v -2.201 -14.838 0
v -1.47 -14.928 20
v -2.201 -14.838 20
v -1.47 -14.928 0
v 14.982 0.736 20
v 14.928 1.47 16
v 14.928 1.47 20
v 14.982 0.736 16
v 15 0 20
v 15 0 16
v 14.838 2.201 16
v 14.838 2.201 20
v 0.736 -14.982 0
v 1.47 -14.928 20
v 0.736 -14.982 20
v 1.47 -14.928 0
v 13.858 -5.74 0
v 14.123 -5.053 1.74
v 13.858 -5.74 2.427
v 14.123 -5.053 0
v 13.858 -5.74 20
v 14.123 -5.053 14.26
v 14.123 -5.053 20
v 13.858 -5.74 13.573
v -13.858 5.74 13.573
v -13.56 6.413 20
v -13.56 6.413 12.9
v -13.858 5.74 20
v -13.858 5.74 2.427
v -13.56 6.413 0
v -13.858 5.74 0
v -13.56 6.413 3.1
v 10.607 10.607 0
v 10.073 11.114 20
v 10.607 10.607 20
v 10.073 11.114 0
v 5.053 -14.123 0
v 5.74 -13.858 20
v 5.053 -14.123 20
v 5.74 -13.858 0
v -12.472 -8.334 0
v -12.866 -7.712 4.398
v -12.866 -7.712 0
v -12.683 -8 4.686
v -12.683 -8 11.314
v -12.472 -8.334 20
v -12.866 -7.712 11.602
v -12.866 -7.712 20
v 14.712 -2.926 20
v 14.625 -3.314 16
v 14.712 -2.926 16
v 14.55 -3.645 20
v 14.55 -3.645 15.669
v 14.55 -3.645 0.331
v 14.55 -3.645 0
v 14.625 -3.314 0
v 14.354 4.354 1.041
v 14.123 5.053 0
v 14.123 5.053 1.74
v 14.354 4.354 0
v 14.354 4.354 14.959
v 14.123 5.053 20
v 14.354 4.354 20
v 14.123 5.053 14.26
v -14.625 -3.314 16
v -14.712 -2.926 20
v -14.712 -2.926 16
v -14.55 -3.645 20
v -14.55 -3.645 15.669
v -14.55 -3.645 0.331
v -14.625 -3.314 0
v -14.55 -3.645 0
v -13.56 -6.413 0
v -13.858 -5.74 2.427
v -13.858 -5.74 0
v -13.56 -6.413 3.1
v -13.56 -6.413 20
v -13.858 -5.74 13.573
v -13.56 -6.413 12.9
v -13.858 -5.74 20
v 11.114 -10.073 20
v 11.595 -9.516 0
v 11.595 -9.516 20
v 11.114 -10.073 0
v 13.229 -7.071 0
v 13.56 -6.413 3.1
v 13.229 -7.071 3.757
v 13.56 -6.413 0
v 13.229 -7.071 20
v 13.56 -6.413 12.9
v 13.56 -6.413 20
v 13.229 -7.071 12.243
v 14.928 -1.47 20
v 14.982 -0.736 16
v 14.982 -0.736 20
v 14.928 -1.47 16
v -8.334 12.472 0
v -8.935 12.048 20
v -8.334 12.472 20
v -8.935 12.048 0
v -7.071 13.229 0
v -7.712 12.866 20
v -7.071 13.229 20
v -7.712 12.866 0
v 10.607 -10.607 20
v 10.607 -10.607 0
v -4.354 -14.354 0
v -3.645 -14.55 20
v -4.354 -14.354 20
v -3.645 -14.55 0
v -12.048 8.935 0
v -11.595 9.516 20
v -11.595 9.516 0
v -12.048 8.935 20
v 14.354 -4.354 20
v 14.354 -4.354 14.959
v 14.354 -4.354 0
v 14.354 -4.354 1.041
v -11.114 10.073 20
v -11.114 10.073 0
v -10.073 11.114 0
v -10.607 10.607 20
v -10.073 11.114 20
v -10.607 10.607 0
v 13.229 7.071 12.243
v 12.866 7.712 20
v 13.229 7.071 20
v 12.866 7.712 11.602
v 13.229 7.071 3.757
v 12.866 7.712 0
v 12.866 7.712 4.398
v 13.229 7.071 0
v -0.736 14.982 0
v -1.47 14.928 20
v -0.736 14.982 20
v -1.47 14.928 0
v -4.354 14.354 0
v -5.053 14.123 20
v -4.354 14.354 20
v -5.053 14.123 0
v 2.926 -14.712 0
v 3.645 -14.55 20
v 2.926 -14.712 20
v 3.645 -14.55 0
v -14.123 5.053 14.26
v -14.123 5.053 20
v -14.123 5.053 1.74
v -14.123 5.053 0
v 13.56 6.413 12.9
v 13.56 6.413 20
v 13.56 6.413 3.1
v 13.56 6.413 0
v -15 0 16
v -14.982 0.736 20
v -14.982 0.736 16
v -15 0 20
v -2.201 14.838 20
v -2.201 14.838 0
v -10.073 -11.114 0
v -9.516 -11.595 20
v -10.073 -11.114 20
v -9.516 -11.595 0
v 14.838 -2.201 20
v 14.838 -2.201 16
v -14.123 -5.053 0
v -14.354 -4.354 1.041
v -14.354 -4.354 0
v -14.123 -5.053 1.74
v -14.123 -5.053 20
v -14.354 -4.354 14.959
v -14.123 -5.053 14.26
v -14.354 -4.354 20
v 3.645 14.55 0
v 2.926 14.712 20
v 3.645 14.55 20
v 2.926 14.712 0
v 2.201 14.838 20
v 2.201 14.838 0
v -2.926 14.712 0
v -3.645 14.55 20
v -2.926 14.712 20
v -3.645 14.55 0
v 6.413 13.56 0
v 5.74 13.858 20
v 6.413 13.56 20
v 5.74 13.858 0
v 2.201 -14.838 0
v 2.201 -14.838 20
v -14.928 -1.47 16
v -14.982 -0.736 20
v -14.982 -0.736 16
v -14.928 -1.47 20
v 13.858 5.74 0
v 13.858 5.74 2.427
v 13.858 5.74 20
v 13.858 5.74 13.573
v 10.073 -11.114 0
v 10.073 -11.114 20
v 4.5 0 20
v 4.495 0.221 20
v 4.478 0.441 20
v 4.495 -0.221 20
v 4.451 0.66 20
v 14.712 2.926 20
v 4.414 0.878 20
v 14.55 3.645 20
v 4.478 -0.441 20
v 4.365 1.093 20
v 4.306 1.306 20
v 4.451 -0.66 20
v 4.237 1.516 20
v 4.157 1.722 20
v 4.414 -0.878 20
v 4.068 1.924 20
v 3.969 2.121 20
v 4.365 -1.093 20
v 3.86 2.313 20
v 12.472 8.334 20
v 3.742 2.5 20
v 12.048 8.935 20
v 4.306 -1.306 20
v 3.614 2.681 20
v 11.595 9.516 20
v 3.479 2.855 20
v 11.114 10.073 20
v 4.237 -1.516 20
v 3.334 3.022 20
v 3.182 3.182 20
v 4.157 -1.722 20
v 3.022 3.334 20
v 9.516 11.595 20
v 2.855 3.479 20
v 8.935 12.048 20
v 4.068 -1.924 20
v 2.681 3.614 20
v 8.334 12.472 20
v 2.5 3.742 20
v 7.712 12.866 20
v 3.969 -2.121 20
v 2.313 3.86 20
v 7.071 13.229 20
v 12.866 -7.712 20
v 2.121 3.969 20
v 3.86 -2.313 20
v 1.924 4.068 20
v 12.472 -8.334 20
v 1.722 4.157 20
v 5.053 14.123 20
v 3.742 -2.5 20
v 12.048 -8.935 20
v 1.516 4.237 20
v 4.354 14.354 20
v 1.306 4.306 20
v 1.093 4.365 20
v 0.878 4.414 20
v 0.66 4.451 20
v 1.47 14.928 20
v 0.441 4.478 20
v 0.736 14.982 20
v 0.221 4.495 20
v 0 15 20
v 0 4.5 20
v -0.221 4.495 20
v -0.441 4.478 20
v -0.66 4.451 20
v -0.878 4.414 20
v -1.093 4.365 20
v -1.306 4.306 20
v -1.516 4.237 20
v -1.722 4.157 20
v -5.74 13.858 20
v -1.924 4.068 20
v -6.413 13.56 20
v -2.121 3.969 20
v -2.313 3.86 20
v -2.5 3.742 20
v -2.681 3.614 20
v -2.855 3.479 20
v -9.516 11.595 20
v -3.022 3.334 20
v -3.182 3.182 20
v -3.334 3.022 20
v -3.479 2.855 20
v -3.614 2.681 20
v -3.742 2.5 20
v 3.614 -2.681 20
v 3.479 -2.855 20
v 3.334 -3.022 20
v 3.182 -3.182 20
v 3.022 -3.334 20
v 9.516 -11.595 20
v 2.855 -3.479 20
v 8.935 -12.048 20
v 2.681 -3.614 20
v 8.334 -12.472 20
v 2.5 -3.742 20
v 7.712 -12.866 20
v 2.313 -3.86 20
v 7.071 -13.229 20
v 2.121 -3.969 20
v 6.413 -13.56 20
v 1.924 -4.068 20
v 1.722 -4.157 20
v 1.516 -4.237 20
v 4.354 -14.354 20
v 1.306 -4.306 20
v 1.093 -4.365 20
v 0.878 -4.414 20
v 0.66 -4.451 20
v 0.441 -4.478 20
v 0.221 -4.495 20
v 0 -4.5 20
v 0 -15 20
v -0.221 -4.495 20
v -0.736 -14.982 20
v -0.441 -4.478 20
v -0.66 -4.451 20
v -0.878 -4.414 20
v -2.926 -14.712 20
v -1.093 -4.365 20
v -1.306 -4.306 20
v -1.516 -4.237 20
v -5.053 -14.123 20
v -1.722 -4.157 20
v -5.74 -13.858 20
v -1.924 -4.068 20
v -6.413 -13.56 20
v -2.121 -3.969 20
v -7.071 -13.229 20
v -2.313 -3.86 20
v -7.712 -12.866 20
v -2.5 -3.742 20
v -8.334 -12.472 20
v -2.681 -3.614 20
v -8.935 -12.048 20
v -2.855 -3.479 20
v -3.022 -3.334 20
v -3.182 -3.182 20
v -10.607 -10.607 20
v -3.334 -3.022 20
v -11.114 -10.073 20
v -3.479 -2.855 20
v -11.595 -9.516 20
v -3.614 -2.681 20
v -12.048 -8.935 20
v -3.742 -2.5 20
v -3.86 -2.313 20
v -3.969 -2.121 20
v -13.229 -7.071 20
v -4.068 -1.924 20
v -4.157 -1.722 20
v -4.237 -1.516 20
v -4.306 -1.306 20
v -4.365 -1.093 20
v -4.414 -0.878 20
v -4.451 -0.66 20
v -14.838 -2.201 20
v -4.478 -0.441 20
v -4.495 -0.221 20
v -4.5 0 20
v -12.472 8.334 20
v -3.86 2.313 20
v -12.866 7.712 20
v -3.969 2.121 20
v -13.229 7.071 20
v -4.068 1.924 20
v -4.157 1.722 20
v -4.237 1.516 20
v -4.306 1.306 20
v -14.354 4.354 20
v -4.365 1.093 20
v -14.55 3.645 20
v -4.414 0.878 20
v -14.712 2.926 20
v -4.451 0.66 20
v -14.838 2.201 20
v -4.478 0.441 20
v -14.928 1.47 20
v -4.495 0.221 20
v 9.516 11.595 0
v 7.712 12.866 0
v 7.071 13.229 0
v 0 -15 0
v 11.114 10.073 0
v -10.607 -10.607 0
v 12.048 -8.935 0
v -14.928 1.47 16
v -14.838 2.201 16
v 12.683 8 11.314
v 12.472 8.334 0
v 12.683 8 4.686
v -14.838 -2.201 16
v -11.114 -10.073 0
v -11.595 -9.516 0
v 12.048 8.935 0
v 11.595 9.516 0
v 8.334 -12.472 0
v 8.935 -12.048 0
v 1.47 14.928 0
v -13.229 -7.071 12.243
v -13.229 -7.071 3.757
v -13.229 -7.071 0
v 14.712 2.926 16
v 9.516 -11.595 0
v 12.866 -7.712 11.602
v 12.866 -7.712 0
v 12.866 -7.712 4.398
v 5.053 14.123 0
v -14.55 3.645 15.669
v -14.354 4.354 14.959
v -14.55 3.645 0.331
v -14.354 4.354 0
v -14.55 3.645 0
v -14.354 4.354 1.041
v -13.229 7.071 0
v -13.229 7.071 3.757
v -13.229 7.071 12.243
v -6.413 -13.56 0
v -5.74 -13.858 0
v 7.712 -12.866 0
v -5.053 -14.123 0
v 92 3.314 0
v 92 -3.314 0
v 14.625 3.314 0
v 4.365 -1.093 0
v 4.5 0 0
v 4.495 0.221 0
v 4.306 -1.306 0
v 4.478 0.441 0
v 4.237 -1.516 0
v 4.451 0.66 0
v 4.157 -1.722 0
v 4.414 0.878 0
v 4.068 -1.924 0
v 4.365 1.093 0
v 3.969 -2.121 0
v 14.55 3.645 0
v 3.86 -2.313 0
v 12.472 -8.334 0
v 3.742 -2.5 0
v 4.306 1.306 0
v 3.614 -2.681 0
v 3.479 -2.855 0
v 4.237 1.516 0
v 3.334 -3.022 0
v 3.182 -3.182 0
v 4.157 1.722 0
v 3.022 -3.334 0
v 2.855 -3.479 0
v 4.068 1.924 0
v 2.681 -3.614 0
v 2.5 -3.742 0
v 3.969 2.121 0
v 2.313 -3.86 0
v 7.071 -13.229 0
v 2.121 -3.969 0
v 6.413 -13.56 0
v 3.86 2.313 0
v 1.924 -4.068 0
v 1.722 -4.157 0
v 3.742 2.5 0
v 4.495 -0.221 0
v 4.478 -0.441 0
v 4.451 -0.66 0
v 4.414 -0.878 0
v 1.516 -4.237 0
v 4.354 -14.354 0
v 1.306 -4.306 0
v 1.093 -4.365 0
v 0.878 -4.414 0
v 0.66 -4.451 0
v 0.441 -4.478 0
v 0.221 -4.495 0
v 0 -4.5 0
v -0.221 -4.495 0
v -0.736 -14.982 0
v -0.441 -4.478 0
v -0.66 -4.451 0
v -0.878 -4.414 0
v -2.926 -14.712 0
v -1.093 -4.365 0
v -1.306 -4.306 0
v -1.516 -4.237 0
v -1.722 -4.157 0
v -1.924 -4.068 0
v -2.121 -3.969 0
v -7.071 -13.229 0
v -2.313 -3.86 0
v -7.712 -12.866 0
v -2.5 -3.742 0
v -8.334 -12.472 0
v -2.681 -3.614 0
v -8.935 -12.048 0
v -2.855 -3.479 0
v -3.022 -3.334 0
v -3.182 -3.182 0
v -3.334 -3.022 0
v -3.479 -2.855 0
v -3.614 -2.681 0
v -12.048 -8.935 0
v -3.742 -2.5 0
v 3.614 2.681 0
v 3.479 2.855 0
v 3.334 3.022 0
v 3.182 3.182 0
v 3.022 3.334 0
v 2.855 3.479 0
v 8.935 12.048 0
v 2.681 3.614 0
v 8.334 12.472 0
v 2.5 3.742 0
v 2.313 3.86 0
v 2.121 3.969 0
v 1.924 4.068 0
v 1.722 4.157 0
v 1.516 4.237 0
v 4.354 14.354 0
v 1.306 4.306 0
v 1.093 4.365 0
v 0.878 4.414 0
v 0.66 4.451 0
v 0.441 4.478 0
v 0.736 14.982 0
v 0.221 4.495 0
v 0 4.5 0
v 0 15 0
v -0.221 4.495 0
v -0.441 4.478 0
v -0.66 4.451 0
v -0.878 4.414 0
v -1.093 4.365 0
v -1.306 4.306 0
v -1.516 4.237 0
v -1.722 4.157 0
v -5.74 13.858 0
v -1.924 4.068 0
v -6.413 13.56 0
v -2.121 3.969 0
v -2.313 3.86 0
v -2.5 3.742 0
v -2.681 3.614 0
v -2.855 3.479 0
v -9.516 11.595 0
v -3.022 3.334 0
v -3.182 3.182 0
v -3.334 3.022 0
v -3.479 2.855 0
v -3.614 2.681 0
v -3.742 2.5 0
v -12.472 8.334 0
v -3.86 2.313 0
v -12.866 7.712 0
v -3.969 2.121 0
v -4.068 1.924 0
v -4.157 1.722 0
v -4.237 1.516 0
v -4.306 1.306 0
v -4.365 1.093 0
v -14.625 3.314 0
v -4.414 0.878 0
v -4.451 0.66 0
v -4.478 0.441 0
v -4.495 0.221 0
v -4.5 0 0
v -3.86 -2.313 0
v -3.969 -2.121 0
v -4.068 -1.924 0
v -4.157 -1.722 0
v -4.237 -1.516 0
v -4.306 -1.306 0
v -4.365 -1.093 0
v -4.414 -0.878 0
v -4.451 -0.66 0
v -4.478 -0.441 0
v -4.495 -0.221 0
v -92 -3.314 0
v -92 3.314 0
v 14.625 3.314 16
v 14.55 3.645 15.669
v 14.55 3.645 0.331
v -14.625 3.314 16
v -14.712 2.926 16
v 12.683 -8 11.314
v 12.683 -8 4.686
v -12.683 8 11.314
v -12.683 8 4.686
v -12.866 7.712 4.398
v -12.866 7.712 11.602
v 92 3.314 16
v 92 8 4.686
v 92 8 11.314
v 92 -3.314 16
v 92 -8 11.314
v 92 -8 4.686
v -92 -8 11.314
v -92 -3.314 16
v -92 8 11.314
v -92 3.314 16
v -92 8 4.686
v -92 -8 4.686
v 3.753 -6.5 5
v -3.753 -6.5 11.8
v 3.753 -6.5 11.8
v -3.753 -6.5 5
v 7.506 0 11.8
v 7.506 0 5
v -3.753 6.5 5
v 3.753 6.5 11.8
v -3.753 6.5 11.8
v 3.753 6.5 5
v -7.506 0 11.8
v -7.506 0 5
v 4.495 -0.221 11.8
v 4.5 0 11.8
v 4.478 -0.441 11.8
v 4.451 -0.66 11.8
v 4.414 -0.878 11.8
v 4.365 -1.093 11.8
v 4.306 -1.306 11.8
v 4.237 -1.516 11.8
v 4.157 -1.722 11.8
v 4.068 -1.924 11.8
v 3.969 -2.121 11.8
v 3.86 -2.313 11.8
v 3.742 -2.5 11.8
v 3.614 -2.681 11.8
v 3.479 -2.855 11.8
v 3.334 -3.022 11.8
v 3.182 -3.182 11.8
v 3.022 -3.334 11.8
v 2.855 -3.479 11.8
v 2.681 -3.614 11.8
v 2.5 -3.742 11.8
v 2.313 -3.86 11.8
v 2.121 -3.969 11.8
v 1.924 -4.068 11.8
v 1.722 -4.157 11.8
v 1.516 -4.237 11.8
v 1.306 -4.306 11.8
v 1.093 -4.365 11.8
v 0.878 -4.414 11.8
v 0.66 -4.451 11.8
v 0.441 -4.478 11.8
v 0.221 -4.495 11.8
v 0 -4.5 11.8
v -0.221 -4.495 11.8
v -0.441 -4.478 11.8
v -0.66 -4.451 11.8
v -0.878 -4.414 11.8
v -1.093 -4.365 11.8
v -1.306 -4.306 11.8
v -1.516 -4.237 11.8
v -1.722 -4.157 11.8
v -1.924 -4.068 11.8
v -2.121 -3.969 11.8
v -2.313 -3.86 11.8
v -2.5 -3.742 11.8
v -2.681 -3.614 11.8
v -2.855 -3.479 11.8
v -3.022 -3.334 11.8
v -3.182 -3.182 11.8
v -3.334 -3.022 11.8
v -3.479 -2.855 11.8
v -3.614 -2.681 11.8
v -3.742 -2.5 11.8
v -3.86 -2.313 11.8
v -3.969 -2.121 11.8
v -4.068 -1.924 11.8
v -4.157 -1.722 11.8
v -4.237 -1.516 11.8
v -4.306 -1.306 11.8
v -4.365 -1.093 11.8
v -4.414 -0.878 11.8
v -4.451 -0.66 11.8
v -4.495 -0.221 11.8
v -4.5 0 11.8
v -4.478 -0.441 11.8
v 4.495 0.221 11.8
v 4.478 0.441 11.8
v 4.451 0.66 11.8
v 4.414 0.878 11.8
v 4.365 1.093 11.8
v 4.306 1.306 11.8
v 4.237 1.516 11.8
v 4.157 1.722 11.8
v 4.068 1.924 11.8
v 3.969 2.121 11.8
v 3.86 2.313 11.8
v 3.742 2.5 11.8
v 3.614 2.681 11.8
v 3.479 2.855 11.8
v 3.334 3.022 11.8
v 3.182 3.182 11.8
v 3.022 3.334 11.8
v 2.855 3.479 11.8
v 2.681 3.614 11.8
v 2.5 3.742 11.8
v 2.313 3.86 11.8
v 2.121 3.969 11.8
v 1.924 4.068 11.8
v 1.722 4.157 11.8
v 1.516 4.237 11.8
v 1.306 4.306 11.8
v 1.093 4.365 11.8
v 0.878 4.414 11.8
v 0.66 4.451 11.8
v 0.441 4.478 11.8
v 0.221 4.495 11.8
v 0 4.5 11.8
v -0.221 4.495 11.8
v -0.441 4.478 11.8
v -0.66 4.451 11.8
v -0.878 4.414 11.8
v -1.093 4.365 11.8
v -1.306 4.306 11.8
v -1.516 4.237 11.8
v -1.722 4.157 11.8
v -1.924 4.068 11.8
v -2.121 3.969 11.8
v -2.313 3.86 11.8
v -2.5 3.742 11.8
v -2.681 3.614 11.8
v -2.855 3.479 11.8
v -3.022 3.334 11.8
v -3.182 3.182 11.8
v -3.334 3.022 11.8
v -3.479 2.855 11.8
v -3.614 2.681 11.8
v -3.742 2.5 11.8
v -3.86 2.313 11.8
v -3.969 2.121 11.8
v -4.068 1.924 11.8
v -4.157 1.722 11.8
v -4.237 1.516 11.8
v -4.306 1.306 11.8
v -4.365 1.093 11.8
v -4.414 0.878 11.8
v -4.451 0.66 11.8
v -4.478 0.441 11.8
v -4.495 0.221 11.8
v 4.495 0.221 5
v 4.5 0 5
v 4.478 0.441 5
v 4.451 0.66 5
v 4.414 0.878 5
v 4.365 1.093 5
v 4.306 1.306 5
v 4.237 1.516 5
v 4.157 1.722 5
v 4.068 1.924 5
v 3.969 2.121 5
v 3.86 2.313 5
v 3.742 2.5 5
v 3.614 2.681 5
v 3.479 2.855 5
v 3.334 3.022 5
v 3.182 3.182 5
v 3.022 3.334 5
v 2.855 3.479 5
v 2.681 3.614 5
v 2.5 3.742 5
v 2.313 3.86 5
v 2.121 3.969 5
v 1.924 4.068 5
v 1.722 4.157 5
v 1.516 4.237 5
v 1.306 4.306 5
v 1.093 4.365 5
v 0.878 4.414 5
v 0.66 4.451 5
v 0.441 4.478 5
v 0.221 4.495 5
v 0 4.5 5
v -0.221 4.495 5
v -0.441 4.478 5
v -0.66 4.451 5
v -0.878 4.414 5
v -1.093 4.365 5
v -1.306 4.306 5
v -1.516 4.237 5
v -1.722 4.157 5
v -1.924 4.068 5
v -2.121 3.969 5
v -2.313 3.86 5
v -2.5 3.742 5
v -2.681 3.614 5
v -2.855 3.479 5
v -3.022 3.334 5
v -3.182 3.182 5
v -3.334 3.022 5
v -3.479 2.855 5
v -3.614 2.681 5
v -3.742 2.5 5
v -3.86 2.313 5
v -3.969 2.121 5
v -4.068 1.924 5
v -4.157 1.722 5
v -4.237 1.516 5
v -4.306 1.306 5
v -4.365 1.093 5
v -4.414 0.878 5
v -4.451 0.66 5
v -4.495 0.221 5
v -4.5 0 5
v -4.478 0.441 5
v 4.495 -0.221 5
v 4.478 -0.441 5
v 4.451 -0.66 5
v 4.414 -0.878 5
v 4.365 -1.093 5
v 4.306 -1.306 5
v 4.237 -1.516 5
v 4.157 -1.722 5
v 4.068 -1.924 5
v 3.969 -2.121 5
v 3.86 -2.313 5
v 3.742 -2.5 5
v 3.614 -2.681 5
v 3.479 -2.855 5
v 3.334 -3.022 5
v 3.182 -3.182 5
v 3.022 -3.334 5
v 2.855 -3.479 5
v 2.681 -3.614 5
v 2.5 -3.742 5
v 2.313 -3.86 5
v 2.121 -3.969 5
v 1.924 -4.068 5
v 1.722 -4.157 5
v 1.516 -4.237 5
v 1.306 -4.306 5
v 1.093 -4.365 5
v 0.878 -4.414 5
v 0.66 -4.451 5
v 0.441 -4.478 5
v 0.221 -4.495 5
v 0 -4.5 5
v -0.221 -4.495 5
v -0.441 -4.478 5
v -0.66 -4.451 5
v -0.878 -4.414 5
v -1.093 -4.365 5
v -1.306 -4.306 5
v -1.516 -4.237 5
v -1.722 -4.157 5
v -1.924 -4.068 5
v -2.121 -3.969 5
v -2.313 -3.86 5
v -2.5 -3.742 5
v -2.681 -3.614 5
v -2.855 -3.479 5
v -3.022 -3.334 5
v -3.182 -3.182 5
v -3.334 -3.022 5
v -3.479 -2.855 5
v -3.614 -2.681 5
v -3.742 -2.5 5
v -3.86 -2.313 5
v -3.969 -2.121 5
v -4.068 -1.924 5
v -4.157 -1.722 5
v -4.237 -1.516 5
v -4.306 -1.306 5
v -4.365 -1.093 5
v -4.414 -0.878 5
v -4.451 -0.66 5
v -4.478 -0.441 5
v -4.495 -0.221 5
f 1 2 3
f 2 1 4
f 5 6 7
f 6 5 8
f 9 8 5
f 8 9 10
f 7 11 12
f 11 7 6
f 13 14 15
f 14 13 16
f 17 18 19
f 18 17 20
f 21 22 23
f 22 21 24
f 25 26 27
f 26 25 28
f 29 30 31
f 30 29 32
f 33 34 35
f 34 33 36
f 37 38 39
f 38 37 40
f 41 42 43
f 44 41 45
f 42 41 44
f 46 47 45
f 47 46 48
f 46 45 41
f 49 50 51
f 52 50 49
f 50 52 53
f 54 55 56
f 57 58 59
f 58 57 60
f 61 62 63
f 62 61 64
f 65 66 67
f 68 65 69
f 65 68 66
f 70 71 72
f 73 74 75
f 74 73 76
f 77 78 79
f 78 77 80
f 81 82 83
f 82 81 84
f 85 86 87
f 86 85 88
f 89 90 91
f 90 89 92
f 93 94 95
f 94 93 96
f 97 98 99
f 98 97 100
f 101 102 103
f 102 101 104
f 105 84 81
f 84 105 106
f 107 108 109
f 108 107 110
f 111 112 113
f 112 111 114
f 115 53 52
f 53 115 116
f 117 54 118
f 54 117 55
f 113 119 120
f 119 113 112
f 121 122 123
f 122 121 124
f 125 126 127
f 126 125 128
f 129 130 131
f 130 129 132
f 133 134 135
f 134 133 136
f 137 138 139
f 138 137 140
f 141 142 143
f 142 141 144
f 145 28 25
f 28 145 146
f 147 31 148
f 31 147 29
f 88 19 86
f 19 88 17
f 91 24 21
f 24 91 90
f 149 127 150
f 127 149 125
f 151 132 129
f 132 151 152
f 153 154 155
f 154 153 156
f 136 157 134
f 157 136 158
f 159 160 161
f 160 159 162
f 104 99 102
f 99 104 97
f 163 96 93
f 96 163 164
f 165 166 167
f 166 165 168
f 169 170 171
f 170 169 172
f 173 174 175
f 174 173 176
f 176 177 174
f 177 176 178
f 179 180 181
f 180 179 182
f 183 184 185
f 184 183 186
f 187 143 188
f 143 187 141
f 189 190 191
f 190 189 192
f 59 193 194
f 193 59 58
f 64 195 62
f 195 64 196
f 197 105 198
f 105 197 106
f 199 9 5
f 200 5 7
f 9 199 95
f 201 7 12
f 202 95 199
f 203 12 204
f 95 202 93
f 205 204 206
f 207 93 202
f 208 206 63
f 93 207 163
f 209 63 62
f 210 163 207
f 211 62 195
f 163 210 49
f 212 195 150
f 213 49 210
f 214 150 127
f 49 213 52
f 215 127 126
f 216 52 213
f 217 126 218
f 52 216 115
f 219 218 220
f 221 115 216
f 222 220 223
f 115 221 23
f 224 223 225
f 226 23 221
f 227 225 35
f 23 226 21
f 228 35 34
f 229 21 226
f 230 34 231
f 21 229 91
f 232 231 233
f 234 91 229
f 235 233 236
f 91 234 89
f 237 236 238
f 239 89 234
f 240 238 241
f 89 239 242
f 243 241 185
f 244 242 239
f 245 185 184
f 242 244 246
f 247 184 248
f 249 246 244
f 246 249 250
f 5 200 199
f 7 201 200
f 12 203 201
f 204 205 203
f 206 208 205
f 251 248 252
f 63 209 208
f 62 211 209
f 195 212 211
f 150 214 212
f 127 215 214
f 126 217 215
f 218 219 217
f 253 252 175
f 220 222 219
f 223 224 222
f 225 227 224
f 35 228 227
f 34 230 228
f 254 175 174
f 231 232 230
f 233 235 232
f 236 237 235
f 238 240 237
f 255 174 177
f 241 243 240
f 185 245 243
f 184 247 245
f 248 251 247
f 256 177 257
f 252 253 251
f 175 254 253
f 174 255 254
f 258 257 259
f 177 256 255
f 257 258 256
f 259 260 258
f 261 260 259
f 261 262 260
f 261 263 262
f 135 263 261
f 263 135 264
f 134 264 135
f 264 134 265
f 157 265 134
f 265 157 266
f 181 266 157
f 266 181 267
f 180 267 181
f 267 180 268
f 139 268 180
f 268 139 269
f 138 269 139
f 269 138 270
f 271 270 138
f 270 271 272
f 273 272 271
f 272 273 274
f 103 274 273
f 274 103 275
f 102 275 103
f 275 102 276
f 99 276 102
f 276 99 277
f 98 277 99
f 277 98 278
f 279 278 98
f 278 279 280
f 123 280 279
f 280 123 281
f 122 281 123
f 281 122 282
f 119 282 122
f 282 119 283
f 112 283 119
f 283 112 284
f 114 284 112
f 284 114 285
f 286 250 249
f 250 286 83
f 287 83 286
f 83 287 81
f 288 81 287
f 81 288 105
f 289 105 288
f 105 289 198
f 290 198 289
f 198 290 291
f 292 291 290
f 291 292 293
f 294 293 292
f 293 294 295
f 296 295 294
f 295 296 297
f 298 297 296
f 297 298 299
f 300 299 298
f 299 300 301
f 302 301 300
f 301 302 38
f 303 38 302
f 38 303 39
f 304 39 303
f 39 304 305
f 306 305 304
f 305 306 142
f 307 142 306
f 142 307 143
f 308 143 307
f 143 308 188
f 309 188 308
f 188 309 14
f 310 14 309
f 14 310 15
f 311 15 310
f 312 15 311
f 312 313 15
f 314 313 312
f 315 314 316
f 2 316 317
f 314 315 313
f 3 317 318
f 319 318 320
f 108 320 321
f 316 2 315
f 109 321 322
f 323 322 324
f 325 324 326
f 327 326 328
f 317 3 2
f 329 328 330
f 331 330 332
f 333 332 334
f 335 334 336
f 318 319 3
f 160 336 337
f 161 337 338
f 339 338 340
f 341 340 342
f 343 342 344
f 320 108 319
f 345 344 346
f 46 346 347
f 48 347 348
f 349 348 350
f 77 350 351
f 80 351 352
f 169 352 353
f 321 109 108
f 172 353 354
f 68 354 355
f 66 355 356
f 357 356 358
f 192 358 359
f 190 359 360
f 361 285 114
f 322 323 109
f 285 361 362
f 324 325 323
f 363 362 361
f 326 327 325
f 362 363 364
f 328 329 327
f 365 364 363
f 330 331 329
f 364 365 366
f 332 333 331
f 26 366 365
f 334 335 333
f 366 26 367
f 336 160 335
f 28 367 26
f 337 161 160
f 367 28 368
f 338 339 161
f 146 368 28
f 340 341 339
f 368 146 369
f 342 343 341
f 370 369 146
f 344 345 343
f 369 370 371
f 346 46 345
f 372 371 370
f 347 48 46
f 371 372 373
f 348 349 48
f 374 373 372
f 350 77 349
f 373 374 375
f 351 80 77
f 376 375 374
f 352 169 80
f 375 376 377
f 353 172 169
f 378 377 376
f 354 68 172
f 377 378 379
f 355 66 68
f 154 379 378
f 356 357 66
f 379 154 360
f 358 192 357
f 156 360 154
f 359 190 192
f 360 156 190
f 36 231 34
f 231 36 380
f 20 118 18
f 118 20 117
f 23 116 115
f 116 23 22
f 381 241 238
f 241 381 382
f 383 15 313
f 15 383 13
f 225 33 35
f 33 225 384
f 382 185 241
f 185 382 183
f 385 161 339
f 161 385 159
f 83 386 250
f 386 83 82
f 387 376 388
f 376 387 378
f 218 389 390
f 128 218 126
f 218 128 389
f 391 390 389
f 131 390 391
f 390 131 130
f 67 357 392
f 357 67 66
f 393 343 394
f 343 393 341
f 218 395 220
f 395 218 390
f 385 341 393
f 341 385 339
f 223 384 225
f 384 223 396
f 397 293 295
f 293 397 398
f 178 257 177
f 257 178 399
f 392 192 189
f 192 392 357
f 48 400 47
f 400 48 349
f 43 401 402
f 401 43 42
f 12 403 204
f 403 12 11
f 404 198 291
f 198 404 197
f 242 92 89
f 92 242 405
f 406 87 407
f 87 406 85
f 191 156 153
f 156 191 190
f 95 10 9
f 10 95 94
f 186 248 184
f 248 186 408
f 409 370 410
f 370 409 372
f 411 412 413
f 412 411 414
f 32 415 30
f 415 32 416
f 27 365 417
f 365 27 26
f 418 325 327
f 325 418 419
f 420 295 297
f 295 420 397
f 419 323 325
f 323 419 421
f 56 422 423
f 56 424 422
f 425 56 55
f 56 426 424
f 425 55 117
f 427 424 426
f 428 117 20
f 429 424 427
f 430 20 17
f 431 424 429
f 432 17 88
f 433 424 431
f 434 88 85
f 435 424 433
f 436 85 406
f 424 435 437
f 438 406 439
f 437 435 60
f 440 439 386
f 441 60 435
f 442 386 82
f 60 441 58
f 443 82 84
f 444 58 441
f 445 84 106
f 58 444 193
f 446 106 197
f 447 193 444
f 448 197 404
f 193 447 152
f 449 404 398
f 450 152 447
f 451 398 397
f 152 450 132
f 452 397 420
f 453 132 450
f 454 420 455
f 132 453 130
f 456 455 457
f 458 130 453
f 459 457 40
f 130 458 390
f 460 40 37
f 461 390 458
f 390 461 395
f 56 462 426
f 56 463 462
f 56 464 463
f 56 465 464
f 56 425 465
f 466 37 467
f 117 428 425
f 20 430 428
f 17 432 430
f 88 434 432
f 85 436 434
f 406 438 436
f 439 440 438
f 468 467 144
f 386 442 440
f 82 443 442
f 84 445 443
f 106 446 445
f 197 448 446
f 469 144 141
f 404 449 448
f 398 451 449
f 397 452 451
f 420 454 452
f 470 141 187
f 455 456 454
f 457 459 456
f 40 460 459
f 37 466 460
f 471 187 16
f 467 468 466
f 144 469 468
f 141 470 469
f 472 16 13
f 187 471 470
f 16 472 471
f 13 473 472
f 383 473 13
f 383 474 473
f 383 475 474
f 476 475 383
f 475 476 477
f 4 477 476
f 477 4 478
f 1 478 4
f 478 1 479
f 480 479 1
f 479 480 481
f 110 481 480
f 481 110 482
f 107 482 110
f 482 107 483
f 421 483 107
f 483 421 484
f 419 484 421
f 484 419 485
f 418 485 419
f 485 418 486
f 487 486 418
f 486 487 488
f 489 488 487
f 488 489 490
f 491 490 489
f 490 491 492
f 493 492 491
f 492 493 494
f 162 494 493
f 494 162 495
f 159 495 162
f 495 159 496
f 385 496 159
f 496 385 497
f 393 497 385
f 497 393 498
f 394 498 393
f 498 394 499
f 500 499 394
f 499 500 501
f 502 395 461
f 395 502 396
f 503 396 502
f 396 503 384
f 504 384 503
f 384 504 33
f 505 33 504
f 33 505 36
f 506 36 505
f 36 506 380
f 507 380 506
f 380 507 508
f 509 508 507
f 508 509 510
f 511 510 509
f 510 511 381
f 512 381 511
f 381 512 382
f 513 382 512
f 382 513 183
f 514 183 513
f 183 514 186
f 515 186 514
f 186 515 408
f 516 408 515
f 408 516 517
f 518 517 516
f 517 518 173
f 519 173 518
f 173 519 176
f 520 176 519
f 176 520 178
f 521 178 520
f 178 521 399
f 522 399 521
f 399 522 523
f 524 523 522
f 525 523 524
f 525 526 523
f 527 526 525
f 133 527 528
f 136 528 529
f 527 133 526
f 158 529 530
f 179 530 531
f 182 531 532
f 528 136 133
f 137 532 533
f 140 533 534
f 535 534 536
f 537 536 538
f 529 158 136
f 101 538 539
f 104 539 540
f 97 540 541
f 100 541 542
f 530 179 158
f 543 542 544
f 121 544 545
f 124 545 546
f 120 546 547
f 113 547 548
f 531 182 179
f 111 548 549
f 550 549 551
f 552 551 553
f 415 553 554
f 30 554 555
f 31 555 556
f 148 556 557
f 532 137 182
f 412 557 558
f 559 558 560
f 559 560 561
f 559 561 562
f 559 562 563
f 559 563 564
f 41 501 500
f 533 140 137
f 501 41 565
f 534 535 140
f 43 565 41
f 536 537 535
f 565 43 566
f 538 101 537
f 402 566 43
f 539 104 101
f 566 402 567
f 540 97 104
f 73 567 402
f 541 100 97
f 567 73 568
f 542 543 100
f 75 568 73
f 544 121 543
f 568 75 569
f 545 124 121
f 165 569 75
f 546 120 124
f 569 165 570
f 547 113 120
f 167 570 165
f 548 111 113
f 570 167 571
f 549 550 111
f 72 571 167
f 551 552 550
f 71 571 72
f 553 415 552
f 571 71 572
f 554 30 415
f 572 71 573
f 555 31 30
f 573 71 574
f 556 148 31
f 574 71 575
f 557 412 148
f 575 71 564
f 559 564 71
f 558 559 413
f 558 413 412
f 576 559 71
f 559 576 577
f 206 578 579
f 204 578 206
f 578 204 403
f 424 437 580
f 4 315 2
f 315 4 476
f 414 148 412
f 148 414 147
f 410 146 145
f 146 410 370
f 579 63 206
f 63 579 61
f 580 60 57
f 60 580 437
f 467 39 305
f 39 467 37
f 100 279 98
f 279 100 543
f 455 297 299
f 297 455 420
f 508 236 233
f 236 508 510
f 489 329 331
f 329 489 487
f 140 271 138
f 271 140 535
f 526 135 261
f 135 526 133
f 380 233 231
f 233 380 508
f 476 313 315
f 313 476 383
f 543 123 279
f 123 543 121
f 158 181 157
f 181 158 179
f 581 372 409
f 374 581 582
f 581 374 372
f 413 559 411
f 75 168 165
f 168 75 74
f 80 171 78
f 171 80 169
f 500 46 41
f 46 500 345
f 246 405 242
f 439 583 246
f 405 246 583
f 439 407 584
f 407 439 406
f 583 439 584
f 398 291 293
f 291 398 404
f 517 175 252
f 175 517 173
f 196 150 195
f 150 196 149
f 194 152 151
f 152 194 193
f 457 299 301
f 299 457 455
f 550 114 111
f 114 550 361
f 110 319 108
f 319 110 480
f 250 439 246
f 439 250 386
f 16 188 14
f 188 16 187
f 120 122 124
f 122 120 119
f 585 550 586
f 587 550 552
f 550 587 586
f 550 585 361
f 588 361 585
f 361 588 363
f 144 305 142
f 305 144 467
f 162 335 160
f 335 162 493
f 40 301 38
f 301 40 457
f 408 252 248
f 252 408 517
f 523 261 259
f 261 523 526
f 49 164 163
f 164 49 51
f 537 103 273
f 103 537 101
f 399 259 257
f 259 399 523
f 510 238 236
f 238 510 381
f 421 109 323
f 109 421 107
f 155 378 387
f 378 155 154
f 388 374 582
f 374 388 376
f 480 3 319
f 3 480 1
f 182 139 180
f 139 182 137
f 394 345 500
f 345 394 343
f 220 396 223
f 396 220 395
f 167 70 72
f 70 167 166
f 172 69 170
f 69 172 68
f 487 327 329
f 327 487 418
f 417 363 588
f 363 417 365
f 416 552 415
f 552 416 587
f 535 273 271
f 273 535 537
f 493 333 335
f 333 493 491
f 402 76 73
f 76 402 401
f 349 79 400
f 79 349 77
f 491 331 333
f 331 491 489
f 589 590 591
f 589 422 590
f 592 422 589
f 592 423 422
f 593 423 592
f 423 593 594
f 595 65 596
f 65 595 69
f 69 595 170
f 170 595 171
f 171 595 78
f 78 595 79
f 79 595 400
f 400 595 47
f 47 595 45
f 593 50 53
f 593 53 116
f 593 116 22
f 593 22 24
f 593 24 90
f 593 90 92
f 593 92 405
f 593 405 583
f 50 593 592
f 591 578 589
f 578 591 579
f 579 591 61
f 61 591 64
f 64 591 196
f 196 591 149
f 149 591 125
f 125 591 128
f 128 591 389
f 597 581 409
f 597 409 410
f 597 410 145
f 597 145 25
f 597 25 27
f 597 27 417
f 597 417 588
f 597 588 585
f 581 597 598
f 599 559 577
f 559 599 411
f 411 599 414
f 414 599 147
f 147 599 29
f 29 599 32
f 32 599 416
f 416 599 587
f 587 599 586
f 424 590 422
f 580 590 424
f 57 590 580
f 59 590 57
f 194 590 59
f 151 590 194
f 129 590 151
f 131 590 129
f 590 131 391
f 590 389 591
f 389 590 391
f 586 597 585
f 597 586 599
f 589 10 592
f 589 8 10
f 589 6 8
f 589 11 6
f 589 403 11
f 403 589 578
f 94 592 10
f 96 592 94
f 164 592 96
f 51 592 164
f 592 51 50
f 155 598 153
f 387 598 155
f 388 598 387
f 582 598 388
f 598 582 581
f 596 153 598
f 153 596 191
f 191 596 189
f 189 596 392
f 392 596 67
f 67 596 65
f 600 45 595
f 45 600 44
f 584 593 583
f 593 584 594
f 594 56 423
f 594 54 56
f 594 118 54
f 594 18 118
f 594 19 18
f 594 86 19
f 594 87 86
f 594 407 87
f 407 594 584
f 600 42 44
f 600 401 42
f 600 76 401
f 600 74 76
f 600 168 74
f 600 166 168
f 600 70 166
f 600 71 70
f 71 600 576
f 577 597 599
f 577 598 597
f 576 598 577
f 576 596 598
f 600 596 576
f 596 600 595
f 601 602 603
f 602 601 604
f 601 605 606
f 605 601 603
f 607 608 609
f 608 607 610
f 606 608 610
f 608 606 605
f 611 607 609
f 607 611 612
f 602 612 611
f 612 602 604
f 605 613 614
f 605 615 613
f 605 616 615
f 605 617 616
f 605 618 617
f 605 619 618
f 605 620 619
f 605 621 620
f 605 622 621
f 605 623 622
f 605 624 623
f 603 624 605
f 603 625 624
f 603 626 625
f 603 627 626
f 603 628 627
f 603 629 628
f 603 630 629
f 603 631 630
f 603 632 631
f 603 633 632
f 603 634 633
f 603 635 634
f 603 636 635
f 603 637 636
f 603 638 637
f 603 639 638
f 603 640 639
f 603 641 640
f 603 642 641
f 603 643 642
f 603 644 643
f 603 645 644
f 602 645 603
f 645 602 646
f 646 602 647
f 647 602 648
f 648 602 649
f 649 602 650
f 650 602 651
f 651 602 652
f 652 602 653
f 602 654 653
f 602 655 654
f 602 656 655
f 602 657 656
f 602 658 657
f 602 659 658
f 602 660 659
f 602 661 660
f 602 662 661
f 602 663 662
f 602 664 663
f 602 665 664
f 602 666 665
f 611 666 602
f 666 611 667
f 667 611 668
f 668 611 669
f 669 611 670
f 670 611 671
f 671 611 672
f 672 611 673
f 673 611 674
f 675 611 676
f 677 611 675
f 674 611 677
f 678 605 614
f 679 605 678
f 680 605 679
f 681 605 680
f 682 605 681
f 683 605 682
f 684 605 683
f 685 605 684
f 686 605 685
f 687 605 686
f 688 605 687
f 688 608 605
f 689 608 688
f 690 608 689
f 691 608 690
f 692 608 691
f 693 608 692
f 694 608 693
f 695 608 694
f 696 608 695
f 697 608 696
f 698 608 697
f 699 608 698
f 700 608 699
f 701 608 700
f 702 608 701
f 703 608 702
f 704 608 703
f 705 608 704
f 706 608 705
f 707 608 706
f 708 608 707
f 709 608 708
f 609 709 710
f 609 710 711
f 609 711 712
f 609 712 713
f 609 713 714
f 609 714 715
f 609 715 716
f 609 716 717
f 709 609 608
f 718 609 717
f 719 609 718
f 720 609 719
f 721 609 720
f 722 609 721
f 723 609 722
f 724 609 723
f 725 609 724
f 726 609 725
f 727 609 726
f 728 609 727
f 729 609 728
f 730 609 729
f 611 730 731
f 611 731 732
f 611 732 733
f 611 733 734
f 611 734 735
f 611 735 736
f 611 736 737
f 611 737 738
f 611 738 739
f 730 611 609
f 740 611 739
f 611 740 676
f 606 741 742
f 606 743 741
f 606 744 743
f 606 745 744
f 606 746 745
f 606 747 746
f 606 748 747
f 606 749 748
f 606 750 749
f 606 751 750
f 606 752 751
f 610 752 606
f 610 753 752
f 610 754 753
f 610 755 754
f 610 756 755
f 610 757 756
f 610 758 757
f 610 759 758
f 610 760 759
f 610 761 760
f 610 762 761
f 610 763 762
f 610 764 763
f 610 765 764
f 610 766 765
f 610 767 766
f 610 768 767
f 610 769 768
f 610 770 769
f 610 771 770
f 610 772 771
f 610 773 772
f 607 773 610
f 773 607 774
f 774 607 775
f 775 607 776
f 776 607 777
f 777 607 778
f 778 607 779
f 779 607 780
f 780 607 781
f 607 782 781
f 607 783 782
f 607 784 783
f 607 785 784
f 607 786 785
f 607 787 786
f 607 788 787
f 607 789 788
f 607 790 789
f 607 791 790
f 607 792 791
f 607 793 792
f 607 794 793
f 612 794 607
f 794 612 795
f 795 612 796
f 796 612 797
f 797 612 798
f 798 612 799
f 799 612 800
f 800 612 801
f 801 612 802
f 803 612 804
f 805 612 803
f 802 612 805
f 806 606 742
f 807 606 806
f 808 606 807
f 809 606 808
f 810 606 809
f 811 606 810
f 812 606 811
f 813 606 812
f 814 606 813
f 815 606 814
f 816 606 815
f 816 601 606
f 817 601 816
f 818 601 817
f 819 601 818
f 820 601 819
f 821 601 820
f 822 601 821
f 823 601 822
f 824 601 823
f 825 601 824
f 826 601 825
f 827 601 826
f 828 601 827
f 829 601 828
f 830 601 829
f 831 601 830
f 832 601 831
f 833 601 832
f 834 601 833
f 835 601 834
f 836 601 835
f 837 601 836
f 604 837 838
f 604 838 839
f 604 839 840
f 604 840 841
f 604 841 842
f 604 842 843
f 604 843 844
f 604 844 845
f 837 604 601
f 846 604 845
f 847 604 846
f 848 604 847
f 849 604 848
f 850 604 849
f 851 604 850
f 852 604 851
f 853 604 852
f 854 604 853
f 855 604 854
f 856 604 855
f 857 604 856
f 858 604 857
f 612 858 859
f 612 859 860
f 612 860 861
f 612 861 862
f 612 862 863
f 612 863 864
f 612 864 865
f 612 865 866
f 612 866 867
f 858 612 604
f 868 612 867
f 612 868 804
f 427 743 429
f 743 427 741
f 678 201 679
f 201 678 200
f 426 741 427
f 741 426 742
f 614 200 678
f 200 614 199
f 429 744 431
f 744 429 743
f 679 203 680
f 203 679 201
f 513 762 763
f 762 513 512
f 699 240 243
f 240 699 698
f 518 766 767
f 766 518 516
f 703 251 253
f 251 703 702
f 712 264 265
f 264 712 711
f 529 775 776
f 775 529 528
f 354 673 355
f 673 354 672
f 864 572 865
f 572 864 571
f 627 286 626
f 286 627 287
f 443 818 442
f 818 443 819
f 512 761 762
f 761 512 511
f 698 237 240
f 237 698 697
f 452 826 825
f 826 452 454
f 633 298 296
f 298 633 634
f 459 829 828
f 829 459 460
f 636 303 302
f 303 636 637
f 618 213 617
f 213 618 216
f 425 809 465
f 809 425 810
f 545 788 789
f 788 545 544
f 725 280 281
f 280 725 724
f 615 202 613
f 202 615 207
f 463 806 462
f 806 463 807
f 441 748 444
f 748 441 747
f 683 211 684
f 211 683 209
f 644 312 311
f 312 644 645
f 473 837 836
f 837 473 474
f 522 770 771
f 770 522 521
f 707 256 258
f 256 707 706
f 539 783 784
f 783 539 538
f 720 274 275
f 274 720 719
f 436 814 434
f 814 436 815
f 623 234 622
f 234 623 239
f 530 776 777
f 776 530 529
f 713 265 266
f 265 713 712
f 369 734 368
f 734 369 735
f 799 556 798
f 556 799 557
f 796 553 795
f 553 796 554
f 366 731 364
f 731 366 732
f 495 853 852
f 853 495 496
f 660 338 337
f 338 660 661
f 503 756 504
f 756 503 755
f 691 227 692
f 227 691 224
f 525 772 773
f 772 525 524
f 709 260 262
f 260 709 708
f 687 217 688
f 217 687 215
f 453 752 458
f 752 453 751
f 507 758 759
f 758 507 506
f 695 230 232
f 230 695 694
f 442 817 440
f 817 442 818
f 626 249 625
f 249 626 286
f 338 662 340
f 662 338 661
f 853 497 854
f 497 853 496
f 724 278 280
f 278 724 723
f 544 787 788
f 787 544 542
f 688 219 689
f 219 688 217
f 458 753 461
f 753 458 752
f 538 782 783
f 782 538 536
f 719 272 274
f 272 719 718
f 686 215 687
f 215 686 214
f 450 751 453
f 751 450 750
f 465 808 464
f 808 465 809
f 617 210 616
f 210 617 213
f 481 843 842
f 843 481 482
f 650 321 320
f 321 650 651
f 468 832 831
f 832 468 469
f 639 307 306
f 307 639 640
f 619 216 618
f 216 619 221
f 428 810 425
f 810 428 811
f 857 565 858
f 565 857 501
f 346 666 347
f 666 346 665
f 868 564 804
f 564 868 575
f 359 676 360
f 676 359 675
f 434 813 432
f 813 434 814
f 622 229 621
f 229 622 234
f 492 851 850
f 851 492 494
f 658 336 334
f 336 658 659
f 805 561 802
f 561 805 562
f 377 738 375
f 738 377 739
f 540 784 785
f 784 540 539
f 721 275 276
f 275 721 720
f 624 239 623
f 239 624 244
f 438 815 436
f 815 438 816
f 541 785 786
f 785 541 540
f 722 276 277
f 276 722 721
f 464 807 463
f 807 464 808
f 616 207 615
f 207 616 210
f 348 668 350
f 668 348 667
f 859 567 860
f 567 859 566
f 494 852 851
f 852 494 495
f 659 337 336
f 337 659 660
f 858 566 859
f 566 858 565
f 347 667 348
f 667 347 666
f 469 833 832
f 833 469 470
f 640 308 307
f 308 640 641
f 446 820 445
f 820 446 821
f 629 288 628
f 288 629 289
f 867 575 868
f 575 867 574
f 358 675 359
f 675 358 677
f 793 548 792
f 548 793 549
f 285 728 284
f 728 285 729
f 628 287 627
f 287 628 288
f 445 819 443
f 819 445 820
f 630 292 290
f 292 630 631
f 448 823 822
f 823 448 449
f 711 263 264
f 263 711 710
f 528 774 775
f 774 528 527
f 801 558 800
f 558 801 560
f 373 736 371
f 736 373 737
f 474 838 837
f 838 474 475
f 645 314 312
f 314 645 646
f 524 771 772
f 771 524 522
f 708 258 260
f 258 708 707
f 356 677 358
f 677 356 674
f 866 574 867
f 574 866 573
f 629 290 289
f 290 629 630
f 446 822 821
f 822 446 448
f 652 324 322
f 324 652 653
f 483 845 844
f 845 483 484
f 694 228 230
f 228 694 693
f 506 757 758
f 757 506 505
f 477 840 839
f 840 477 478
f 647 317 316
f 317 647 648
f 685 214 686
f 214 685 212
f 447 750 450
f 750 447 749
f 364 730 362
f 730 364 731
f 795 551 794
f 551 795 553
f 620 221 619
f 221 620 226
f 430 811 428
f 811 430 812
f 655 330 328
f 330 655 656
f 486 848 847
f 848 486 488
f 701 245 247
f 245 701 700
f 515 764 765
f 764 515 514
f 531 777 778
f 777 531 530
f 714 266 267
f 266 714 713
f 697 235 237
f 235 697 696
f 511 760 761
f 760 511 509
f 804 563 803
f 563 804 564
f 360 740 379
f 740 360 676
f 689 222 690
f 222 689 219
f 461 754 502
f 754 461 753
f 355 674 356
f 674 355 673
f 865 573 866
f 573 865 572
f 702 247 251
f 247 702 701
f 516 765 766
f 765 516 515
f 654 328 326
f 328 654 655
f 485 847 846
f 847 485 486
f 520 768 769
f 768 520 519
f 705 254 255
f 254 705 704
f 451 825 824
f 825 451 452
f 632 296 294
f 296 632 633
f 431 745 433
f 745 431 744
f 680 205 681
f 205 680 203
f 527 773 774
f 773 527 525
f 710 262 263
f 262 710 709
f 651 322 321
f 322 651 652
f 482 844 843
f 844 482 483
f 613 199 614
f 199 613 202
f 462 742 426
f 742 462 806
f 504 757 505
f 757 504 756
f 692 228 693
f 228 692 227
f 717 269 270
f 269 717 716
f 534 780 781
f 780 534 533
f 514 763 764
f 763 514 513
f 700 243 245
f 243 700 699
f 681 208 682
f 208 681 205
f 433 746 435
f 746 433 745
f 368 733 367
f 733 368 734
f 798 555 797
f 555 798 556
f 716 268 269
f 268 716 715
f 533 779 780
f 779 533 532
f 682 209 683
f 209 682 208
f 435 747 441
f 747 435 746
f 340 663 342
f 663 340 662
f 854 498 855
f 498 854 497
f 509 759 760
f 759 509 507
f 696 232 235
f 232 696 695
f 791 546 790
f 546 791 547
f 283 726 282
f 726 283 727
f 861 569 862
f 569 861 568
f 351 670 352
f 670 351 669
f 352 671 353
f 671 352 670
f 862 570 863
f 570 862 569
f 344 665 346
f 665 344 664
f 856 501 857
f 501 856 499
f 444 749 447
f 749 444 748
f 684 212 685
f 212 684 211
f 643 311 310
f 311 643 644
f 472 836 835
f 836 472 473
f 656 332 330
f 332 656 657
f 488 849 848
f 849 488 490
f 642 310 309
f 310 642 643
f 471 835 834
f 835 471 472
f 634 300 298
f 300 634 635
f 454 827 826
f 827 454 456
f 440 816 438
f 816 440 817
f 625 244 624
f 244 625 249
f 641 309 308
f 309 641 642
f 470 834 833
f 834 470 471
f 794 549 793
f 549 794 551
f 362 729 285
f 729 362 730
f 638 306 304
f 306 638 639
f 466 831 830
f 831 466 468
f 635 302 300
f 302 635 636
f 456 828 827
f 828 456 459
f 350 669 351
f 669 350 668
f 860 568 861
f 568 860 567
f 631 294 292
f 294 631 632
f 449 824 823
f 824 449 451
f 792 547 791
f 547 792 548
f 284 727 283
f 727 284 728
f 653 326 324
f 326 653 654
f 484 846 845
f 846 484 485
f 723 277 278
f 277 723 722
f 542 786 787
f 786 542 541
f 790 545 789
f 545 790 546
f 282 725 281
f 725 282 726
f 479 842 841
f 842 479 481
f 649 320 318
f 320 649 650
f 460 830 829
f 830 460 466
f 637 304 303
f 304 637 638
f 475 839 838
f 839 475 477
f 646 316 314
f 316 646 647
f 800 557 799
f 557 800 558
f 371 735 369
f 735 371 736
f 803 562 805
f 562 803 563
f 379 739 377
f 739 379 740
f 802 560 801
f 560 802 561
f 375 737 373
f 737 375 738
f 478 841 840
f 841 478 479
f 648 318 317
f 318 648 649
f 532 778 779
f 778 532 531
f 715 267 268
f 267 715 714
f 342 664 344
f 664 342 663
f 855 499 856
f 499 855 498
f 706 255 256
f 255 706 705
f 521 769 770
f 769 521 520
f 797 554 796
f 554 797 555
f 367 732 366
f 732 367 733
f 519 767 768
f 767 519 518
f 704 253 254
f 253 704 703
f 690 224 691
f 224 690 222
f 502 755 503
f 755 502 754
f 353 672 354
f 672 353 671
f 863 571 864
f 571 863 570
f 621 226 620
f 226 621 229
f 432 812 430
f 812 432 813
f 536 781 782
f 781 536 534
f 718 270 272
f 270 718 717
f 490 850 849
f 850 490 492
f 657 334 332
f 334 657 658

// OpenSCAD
// [Component Type]
type = "handle"; // ["handle","cylinder","cup","step"]

/* [Handle Options] */
rod_d          = 9;     // mm (M8 rod)
center_h       = 20;    // mm vertical height
center_d       = 30;    // mm vertical cylinder Ø
pocket_flat_w  = 13;    // mm nut‐flat width
pocket_depth   = 6.8;     // mm nut height
pocket_offset  = 5;    // mm from base to pocket start
handle_len     = 200;   // mm length of horizontal bar
handle_d       = 16;    // mm diameter of horizontal bar
$fn_handle     = 128;    // resolution

/* [Cylinder Options] */
outer_d      = 30;  // mm
inner_d      = 25;  // mm
height       = 20;  // mm
$fn_ring     = 128;  // resolution

/* [Cup Options] */
cup_outer_d      = 30;  // mm
cup_inner_d      = 25;  // mm
cup_height       = 20;  // mm
cup_bottom_h     = 10;  // mm
cup_hole_d       = 9;  // mm
$fn_cup          = 128;  // resolution

/* [Step Options] */
base_d        = 30;  // mm
base_h        = 12;  // mm
top_d         = 18;  // mm
top_h         = 8;   // mm
step_hole_d   = 9;  // mm
$fn_step      = 128;  // resolution


// — dispatch —
if      (type == "cylinder")   cylinder_hollow(outer_d, inner_d, height,      $fn_ring);
else if (type == "cup")    cup(cup_outer_d, cup_inner_d, cup_height, cup_bottom_h, cup_hole_d, $fn_cup);
else if (type == "step")   step(base_d, base_h, top_d, top_h, step_hole_d, $fn_step);
else if (type == "handle") handle(
    rod_d,
    center_h,
    center_d,
    pocket_flat_w,
    pocket_depth,
    pocket_offset,
    handle_len,
    handle_d,
    $fn_handle
);

// — modules —
module cylinder_hollow(od, id, h, fn=64) {
  difference() {
    cylinder(d=od, h=h, $fn=fn);
    translate([0,0,-1]) cylinder(d=id, h=h+2, $fn=fn);
  }
}

module cup(od, id, h, bottom_h, hole_d, fn=64) {
  difference() {
    cylinder(d=od, h=h, $fn=fn);
    translate([0,0,bottom_h]) cylinder(d=id, h=h, $fn=fn);
    translate([0,0,-1]) cylinder(d=hole_d, h=h+2, $fn=fn);
  }
}

module step(bd, bh, td, th, hd, fn=64) {
  difference() {
    union() {
      cylinder(d=bd, h=bh, $fn=fn);
      translate([0,0,bh]) cylinder(d=td, h=th, $fn=fn);
    }
    translate([0,0,-1]) cylinder(d=hd, h=bh+th+2, $fn=fn);
  }
}

// — Handle + horizontal bar + nut‑pocket —
module handle(
    rod_d,
    center_h,
    center_d,
    flat_w,
    pocket_h,
    pocket_z,
    handle_len,
    handle_d,
    fn=64
) {
  difference() {
    union(){
        // vertical grip
        cylinder(d=center_d, h=center_h, $fn=fn);
        // horizontal bar (centered on ground)
        translate([0, 0, handle_d/2])
                rotate([0,90,0])
                  rotate([0,0,180/8])
                        cylinder(d=handle_d / cos(180/8), h=handle_len - handle_d, center=true, $fn=8);
    }
    // rod hole through vertical only
    cylinder(d=rod_d, h=center_h, $fn=fn);

    // nut pocket in vertical
    translate([0,0,pocket_z]) {
      pd = flat_w * 2 / sqrt(3);
      cylinder(d=pd, h=pocket_h, $fn=6);
      translate([0,0,-1])
        cylinder(d=rod_d, h=pocket_h+2, $fn=fn);
    }
  }
}
// --- Slice with pause at Z = pocket_offset + pocket_depth to drop in nut. ---
